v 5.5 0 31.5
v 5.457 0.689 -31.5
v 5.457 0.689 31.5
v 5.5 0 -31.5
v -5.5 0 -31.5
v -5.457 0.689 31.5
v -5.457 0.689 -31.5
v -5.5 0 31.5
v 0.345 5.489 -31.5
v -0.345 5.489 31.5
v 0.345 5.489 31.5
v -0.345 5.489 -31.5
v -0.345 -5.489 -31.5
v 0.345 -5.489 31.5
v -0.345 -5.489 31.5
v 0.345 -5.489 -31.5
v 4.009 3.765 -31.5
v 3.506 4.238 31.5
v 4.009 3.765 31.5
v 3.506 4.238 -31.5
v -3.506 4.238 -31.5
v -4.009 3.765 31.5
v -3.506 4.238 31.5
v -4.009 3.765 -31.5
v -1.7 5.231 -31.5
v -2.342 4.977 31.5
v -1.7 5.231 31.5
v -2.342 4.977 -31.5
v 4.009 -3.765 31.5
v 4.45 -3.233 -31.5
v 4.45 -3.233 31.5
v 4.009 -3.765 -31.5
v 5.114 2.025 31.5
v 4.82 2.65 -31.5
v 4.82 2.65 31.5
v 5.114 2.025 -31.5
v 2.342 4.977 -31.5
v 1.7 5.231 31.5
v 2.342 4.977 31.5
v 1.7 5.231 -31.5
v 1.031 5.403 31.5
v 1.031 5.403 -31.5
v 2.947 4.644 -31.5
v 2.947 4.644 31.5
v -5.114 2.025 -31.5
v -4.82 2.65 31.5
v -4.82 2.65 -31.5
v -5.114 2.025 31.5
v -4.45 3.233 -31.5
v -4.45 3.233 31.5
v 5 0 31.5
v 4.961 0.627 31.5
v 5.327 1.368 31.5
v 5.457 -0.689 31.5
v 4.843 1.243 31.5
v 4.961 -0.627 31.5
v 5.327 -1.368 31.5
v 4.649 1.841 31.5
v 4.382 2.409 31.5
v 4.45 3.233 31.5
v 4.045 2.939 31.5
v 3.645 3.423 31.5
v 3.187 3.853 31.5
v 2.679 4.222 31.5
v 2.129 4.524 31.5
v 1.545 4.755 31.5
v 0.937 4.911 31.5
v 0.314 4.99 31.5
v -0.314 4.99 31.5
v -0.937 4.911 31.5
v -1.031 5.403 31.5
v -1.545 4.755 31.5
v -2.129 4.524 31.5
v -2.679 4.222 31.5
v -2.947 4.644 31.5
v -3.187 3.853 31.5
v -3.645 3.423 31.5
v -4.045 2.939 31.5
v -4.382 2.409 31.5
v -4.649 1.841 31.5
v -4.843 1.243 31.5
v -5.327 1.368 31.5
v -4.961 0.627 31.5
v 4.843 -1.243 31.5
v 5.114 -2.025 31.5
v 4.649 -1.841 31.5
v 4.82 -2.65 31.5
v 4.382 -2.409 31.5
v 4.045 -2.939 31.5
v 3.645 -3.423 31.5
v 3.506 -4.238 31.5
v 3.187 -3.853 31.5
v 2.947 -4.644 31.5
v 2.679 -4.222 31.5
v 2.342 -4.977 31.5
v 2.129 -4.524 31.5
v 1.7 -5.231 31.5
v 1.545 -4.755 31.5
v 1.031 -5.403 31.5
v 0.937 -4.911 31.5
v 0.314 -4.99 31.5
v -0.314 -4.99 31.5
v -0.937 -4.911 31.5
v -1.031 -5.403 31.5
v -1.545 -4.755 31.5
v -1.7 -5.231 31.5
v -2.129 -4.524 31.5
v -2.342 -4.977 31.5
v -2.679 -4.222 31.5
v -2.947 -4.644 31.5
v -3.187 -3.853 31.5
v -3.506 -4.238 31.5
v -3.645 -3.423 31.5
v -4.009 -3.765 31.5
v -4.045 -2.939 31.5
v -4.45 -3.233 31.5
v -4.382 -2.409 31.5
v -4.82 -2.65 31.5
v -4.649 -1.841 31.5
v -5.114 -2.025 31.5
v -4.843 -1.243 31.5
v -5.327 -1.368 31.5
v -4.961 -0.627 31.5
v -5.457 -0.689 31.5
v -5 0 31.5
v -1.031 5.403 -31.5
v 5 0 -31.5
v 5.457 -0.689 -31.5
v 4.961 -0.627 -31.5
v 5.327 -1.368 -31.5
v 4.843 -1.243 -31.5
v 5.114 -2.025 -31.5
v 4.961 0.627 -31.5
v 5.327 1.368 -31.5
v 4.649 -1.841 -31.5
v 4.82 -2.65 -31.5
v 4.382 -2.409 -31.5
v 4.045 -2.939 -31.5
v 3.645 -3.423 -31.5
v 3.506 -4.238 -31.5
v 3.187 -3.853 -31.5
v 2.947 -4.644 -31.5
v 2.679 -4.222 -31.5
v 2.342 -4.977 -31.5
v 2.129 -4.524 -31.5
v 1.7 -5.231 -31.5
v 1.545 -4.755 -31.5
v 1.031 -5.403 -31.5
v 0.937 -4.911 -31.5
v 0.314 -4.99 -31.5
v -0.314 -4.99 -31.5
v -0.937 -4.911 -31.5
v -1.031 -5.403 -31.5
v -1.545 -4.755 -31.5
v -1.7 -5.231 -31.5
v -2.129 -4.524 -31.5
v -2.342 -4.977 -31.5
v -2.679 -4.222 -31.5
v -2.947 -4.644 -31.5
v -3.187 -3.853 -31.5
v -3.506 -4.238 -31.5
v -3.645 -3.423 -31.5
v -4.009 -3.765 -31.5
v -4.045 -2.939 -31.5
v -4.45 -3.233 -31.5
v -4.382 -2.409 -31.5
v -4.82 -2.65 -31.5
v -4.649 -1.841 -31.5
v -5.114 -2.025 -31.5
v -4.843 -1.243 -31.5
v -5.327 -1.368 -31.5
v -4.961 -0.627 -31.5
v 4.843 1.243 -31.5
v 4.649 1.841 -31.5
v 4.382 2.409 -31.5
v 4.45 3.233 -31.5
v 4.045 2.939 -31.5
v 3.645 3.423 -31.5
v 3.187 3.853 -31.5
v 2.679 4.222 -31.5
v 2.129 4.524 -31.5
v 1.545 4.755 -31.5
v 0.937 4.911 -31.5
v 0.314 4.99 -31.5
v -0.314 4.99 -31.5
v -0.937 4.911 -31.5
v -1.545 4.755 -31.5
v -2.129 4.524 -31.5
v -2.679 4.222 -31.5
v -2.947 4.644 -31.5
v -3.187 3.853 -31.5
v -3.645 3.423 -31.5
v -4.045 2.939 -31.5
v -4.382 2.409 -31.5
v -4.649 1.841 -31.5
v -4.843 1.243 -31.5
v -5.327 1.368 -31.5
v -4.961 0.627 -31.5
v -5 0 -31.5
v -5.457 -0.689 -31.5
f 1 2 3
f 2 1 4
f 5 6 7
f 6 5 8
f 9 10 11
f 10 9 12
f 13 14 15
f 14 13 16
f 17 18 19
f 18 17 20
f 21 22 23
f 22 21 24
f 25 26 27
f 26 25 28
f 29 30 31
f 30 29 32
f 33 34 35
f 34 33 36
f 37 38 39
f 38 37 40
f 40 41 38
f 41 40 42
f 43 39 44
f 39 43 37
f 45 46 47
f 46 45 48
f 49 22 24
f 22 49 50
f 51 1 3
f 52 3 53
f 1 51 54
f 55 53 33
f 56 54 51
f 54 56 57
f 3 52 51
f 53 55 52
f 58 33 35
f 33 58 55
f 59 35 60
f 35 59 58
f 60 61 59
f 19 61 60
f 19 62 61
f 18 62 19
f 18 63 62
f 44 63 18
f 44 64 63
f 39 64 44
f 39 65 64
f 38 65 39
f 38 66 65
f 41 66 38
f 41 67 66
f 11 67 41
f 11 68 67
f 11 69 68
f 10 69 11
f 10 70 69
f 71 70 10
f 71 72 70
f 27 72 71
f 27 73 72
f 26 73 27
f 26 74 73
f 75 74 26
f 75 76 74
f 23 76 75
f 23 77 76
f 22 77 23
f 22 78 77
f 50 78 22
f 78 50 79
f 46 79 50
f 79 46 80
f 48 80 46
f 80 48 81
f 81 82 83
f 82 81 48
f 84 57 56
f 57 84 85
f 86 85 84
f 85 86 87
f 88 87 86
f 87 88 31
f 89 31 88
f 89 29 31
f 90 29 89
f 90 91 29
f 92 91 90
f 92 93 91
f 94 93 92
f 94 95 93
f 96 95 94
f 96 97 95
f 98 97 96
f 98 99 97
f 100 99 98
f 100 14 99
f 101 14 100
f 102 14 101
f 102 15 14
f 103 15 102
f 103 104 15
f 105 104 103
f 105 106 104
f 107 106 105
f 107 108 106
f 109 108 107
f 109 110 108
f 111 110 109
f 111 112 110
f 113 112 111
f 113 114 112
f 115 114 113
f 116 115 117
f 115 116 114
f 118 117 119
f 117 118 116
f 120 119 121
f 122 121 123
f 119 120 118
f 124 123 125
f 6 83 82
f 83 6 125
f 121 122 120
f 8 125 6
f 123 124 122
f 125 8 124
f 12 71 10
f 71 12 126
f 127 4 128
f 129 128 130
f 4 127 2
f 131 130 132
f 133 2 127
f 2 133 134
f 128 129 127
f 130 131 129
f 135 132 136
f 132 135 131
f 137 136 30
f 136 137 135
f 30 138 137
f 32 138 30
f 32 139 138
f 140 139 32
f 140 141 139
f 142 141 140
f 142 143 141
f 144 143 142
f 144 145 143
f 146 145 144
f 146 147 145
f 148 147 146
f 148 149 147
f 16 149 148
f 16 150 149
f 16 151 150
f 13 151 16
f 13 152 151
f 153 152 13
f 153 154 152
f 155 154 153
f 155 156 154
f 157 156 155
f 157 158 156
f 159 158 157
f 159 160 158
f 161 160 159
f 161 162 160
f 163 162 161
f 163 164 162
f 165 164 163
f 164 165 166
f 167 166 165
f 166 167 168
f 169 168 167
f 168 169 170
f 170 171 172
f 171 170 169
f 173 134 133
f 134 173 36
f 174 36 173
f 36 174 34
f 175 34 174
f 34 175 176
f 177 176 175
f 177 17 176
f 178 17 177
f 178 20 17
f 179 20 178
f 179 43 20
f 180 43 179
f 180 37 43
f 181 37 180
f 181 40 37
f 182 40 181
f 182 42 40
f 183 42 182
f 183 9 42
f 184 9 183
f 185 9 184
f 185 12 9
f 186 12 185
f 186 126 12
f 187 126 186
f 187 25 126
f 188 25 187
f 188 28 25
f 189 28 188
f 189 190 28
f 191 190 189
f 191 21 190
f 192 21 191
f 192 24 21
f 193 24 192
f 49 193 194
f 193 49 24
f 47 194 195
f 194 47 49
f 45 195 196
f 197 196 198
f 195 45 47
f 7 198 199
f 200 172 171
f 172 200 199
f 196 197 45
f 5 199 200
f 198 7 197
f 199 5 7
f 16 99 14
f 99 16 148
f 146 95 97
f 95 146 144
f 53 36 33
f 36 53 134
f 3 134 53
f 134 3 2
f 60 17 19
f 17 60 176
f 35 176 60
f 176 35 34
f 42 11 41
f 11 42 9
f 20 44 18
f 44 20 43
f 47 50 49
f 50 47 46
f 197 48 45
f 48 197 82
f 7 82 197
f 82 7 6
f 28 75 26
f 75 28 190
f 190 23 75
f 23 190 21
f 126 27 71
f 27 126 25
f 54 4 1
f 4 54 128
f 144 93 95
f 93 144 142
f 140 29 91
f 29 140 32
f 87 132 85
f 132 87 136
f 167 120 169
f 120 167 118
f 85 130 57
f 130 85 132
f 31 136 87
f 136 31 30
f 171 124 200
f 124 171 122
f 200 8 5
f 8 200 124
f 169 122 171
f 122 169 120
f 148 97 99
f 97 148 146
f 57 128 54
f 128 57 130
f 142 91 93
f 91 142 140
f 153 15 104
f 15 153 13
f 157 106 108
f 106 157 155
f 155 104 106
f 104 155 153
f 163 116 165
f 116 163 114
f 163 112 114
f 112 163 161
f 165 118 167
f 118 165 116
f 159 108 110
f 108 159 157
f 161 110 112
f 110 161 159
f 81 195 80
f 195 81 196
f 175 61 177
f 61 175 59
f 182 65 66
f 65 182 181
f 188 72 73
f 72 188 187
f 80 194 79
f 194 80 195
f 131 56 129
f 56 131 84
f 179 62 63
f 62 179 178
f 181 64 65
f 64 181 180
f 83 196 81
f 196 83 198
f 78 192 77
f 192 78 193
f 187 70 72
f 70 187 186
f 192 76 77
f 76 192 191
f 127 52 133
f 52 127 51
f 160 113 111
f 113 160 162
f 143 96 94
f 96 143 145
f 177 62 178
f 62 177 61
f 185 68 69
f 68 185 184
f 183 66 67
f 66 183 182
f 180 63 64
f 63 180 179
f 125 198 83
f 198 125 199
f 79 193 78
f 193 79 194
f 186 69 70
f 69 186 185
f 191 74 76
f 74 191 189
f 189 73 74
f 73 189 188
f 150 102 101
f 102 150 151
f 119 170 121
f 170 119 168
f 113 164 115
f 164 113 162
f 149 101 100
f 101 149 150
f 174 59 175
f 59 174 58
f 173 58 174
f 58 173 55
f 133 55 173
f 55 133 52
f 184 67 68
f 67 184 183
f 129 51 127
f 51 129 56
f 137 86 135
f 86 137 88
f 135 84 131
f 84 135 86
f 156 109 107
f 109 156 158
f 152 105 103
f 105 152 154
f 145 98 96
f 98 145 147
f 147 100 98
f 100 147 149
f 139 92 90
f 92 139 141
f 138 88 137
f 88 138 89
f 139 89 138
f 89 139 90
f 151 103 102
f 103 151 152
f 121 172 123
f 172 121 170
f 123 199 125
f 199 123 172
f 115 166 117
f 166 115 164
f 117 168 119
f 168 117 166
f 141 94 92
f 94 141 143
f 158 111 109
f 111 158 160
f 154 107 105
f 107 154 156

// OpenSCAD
$fn = 50;


difference() {
	union() {
		translate(v = [0, 0, -31.5000000000]) {
			cylinder(h = 63, r = 5.5000000000);
		}
	}
	union() {
		translate(v = [0, 0, -100.0000000000]) {
			cylinder(h = 200, r = 5.0000000000);
		}
	}
}
